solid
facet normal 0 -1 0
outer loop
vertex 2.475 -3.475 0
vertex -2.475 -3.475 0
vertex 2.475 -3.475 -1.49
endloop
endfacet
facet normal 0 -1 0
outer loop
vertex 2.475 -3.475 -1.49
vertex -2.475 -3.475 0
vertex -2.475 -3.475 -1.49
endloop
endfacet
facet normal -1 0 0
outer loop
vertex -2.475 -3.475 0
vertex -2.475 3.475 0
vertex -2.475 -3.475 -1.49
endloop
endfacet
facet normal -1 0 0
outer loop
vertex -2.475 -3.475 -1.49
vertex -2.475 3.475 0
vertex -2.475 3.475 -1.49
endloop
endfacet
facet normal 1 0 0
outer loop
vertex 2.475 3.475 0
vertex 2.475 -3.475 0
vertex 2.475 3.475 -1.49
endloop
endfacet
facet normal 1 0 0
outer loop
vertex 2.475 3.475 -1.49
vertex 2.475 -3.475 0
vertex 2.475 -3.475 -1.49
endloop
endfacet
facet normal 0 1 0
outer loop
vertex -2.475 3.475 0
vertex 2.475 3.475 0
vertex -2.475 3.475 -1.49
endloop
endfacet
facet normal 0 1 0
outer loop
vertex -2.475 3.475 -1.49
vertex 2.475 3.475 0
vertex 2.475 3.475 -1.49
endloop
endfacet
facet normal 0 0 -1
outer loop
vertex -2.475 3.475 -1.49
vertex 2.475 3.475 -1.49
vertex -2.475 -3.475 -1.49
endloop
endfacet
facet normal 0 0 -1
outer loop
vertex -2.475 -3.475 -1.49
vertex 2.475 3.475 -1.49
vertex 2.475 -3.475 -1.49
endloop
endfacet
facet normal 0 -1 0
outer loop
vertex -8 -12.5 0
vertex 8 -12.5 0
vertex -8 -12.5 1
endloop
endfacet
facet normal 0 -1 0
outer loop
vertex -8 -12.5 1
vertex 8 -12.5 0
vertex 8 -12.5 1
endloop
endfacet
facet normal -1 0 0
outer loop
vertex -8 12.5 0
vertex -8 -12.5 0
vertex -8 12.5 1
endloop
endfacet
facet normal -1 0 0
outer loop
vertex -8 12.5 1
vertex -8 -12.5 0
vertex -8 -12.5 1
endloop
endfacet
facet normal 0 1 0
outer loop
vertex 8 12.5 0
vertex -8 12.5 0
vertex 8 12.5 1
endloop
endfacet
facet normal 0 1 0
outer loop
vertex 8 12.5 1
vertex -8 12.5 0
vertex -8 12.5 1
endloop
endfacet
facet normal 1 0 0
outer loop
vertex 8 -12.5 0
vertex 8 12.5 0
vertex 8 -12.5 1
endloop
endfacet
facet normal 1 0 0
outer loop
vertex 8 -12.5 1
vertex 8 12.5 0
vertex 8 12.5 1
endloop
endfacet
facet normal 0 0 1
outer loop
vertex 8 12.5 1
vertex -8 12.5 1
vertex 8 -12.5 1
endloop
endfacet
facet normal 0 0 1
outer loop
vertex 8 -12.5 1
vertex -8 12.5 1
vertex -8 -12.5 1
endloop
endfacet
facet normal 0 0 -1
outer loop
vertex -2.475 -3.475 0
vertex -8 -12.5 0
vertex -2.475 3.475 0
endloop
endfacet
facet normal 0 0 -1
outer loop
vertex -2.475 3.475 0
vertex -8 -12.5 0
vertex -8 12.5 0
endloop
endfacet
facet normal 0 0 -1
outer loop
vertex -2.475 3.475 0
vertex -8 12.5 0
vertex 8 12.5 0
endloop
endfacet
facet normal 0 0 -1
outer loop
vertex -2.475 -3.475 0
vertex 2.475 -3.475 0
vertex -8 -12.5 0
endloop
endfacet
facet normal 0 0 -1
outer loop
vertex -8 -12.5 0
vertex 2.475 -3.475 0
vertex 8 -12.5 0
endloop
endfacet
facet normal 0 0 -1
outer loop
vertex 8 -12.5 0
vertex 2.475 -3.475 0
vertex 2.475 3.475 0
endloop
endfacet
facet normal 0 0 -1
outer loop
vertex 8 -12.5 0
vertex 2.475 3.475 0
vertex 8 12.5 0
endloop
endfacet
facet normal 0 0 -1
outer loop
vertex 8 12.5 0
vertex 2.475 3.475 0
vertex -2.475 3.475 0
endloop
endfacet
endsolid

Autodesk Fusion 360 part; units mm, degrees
sketch "Esquisse1" plane through (0, 0, 0) normal (0, 0, 1) x (1, 0, 0)
  line L0 (8, 12.5) -> (-8, 12.5)
  line L1 (-8, 12.5) -> (-8, -12.5)
  line L2 (-8, -12.5) -> (8, -12.5)
  line L3 (8, -12.5) -> (8, 12.5)
  line L4 (8, 12.5) -> (-8, -12.5) construction
  line L5 (-8, 12.5) -> (8, -12.5) construction
  dimension "d1" = 16
  dimension "d2" = 25
sketch "Esquisse2" plane through (0, 0, 0) normal (0, 0, 1) x (1, 0, 0)
  line L0 (8, 12.5) -> (-8, 12.5)
  line L1 (-8, 12.5) -> (-8, -12.5)
  line L2 (-8, -12.5) -> (8, -12.5)
  line L3 (8, -12.5) -> (8, 12.5)
  line L4 (8, 12.5) -> (-8, -12.5) construction
  line L5 (-8, 12.5) -> (8, -12.5) construction
  dimension "d5" = 16
  dimension "d6" = 25
extrude "Extrusion2" add sketch "Esquisse2" along normal blind 1
sketch "Esquisse3" plane through (0, 0, 1) normal (0, 0, 1) x (-1, 0, 0)
  line L0 (-8, 12.5) -> (-8, -12.5)
  line L1 (-8, -12.5) -> (8, -12.5)
  line L2 (8, -12.5) -> (8, 12.5)
  line L3 (8, 12.5) -> (-8, 12.5)
  line L4 (-2.475, 3.475) -> (2.475, 3.475)
  line L5 (2.475, 3.475) -> (2.475, -3.475)
  line L6 (2.475, -3.475) -> (-2.475, -3.475)
  line L7 (-2.475, -3.475) -> (-2.475, 3.475)
  line L8 (-2.475, 3.475) -> (2.475, -3.475) construction
  line L9 (2.475, 3.475) -> (-2.475, -3.475) construction
  dimension "d9" = 4.95
  dimension "d10" = 6.95
extrude "Extrusion3" add sketch "Esquisse3" against normal blind 2.49 contours L4 L5 L6 L7
